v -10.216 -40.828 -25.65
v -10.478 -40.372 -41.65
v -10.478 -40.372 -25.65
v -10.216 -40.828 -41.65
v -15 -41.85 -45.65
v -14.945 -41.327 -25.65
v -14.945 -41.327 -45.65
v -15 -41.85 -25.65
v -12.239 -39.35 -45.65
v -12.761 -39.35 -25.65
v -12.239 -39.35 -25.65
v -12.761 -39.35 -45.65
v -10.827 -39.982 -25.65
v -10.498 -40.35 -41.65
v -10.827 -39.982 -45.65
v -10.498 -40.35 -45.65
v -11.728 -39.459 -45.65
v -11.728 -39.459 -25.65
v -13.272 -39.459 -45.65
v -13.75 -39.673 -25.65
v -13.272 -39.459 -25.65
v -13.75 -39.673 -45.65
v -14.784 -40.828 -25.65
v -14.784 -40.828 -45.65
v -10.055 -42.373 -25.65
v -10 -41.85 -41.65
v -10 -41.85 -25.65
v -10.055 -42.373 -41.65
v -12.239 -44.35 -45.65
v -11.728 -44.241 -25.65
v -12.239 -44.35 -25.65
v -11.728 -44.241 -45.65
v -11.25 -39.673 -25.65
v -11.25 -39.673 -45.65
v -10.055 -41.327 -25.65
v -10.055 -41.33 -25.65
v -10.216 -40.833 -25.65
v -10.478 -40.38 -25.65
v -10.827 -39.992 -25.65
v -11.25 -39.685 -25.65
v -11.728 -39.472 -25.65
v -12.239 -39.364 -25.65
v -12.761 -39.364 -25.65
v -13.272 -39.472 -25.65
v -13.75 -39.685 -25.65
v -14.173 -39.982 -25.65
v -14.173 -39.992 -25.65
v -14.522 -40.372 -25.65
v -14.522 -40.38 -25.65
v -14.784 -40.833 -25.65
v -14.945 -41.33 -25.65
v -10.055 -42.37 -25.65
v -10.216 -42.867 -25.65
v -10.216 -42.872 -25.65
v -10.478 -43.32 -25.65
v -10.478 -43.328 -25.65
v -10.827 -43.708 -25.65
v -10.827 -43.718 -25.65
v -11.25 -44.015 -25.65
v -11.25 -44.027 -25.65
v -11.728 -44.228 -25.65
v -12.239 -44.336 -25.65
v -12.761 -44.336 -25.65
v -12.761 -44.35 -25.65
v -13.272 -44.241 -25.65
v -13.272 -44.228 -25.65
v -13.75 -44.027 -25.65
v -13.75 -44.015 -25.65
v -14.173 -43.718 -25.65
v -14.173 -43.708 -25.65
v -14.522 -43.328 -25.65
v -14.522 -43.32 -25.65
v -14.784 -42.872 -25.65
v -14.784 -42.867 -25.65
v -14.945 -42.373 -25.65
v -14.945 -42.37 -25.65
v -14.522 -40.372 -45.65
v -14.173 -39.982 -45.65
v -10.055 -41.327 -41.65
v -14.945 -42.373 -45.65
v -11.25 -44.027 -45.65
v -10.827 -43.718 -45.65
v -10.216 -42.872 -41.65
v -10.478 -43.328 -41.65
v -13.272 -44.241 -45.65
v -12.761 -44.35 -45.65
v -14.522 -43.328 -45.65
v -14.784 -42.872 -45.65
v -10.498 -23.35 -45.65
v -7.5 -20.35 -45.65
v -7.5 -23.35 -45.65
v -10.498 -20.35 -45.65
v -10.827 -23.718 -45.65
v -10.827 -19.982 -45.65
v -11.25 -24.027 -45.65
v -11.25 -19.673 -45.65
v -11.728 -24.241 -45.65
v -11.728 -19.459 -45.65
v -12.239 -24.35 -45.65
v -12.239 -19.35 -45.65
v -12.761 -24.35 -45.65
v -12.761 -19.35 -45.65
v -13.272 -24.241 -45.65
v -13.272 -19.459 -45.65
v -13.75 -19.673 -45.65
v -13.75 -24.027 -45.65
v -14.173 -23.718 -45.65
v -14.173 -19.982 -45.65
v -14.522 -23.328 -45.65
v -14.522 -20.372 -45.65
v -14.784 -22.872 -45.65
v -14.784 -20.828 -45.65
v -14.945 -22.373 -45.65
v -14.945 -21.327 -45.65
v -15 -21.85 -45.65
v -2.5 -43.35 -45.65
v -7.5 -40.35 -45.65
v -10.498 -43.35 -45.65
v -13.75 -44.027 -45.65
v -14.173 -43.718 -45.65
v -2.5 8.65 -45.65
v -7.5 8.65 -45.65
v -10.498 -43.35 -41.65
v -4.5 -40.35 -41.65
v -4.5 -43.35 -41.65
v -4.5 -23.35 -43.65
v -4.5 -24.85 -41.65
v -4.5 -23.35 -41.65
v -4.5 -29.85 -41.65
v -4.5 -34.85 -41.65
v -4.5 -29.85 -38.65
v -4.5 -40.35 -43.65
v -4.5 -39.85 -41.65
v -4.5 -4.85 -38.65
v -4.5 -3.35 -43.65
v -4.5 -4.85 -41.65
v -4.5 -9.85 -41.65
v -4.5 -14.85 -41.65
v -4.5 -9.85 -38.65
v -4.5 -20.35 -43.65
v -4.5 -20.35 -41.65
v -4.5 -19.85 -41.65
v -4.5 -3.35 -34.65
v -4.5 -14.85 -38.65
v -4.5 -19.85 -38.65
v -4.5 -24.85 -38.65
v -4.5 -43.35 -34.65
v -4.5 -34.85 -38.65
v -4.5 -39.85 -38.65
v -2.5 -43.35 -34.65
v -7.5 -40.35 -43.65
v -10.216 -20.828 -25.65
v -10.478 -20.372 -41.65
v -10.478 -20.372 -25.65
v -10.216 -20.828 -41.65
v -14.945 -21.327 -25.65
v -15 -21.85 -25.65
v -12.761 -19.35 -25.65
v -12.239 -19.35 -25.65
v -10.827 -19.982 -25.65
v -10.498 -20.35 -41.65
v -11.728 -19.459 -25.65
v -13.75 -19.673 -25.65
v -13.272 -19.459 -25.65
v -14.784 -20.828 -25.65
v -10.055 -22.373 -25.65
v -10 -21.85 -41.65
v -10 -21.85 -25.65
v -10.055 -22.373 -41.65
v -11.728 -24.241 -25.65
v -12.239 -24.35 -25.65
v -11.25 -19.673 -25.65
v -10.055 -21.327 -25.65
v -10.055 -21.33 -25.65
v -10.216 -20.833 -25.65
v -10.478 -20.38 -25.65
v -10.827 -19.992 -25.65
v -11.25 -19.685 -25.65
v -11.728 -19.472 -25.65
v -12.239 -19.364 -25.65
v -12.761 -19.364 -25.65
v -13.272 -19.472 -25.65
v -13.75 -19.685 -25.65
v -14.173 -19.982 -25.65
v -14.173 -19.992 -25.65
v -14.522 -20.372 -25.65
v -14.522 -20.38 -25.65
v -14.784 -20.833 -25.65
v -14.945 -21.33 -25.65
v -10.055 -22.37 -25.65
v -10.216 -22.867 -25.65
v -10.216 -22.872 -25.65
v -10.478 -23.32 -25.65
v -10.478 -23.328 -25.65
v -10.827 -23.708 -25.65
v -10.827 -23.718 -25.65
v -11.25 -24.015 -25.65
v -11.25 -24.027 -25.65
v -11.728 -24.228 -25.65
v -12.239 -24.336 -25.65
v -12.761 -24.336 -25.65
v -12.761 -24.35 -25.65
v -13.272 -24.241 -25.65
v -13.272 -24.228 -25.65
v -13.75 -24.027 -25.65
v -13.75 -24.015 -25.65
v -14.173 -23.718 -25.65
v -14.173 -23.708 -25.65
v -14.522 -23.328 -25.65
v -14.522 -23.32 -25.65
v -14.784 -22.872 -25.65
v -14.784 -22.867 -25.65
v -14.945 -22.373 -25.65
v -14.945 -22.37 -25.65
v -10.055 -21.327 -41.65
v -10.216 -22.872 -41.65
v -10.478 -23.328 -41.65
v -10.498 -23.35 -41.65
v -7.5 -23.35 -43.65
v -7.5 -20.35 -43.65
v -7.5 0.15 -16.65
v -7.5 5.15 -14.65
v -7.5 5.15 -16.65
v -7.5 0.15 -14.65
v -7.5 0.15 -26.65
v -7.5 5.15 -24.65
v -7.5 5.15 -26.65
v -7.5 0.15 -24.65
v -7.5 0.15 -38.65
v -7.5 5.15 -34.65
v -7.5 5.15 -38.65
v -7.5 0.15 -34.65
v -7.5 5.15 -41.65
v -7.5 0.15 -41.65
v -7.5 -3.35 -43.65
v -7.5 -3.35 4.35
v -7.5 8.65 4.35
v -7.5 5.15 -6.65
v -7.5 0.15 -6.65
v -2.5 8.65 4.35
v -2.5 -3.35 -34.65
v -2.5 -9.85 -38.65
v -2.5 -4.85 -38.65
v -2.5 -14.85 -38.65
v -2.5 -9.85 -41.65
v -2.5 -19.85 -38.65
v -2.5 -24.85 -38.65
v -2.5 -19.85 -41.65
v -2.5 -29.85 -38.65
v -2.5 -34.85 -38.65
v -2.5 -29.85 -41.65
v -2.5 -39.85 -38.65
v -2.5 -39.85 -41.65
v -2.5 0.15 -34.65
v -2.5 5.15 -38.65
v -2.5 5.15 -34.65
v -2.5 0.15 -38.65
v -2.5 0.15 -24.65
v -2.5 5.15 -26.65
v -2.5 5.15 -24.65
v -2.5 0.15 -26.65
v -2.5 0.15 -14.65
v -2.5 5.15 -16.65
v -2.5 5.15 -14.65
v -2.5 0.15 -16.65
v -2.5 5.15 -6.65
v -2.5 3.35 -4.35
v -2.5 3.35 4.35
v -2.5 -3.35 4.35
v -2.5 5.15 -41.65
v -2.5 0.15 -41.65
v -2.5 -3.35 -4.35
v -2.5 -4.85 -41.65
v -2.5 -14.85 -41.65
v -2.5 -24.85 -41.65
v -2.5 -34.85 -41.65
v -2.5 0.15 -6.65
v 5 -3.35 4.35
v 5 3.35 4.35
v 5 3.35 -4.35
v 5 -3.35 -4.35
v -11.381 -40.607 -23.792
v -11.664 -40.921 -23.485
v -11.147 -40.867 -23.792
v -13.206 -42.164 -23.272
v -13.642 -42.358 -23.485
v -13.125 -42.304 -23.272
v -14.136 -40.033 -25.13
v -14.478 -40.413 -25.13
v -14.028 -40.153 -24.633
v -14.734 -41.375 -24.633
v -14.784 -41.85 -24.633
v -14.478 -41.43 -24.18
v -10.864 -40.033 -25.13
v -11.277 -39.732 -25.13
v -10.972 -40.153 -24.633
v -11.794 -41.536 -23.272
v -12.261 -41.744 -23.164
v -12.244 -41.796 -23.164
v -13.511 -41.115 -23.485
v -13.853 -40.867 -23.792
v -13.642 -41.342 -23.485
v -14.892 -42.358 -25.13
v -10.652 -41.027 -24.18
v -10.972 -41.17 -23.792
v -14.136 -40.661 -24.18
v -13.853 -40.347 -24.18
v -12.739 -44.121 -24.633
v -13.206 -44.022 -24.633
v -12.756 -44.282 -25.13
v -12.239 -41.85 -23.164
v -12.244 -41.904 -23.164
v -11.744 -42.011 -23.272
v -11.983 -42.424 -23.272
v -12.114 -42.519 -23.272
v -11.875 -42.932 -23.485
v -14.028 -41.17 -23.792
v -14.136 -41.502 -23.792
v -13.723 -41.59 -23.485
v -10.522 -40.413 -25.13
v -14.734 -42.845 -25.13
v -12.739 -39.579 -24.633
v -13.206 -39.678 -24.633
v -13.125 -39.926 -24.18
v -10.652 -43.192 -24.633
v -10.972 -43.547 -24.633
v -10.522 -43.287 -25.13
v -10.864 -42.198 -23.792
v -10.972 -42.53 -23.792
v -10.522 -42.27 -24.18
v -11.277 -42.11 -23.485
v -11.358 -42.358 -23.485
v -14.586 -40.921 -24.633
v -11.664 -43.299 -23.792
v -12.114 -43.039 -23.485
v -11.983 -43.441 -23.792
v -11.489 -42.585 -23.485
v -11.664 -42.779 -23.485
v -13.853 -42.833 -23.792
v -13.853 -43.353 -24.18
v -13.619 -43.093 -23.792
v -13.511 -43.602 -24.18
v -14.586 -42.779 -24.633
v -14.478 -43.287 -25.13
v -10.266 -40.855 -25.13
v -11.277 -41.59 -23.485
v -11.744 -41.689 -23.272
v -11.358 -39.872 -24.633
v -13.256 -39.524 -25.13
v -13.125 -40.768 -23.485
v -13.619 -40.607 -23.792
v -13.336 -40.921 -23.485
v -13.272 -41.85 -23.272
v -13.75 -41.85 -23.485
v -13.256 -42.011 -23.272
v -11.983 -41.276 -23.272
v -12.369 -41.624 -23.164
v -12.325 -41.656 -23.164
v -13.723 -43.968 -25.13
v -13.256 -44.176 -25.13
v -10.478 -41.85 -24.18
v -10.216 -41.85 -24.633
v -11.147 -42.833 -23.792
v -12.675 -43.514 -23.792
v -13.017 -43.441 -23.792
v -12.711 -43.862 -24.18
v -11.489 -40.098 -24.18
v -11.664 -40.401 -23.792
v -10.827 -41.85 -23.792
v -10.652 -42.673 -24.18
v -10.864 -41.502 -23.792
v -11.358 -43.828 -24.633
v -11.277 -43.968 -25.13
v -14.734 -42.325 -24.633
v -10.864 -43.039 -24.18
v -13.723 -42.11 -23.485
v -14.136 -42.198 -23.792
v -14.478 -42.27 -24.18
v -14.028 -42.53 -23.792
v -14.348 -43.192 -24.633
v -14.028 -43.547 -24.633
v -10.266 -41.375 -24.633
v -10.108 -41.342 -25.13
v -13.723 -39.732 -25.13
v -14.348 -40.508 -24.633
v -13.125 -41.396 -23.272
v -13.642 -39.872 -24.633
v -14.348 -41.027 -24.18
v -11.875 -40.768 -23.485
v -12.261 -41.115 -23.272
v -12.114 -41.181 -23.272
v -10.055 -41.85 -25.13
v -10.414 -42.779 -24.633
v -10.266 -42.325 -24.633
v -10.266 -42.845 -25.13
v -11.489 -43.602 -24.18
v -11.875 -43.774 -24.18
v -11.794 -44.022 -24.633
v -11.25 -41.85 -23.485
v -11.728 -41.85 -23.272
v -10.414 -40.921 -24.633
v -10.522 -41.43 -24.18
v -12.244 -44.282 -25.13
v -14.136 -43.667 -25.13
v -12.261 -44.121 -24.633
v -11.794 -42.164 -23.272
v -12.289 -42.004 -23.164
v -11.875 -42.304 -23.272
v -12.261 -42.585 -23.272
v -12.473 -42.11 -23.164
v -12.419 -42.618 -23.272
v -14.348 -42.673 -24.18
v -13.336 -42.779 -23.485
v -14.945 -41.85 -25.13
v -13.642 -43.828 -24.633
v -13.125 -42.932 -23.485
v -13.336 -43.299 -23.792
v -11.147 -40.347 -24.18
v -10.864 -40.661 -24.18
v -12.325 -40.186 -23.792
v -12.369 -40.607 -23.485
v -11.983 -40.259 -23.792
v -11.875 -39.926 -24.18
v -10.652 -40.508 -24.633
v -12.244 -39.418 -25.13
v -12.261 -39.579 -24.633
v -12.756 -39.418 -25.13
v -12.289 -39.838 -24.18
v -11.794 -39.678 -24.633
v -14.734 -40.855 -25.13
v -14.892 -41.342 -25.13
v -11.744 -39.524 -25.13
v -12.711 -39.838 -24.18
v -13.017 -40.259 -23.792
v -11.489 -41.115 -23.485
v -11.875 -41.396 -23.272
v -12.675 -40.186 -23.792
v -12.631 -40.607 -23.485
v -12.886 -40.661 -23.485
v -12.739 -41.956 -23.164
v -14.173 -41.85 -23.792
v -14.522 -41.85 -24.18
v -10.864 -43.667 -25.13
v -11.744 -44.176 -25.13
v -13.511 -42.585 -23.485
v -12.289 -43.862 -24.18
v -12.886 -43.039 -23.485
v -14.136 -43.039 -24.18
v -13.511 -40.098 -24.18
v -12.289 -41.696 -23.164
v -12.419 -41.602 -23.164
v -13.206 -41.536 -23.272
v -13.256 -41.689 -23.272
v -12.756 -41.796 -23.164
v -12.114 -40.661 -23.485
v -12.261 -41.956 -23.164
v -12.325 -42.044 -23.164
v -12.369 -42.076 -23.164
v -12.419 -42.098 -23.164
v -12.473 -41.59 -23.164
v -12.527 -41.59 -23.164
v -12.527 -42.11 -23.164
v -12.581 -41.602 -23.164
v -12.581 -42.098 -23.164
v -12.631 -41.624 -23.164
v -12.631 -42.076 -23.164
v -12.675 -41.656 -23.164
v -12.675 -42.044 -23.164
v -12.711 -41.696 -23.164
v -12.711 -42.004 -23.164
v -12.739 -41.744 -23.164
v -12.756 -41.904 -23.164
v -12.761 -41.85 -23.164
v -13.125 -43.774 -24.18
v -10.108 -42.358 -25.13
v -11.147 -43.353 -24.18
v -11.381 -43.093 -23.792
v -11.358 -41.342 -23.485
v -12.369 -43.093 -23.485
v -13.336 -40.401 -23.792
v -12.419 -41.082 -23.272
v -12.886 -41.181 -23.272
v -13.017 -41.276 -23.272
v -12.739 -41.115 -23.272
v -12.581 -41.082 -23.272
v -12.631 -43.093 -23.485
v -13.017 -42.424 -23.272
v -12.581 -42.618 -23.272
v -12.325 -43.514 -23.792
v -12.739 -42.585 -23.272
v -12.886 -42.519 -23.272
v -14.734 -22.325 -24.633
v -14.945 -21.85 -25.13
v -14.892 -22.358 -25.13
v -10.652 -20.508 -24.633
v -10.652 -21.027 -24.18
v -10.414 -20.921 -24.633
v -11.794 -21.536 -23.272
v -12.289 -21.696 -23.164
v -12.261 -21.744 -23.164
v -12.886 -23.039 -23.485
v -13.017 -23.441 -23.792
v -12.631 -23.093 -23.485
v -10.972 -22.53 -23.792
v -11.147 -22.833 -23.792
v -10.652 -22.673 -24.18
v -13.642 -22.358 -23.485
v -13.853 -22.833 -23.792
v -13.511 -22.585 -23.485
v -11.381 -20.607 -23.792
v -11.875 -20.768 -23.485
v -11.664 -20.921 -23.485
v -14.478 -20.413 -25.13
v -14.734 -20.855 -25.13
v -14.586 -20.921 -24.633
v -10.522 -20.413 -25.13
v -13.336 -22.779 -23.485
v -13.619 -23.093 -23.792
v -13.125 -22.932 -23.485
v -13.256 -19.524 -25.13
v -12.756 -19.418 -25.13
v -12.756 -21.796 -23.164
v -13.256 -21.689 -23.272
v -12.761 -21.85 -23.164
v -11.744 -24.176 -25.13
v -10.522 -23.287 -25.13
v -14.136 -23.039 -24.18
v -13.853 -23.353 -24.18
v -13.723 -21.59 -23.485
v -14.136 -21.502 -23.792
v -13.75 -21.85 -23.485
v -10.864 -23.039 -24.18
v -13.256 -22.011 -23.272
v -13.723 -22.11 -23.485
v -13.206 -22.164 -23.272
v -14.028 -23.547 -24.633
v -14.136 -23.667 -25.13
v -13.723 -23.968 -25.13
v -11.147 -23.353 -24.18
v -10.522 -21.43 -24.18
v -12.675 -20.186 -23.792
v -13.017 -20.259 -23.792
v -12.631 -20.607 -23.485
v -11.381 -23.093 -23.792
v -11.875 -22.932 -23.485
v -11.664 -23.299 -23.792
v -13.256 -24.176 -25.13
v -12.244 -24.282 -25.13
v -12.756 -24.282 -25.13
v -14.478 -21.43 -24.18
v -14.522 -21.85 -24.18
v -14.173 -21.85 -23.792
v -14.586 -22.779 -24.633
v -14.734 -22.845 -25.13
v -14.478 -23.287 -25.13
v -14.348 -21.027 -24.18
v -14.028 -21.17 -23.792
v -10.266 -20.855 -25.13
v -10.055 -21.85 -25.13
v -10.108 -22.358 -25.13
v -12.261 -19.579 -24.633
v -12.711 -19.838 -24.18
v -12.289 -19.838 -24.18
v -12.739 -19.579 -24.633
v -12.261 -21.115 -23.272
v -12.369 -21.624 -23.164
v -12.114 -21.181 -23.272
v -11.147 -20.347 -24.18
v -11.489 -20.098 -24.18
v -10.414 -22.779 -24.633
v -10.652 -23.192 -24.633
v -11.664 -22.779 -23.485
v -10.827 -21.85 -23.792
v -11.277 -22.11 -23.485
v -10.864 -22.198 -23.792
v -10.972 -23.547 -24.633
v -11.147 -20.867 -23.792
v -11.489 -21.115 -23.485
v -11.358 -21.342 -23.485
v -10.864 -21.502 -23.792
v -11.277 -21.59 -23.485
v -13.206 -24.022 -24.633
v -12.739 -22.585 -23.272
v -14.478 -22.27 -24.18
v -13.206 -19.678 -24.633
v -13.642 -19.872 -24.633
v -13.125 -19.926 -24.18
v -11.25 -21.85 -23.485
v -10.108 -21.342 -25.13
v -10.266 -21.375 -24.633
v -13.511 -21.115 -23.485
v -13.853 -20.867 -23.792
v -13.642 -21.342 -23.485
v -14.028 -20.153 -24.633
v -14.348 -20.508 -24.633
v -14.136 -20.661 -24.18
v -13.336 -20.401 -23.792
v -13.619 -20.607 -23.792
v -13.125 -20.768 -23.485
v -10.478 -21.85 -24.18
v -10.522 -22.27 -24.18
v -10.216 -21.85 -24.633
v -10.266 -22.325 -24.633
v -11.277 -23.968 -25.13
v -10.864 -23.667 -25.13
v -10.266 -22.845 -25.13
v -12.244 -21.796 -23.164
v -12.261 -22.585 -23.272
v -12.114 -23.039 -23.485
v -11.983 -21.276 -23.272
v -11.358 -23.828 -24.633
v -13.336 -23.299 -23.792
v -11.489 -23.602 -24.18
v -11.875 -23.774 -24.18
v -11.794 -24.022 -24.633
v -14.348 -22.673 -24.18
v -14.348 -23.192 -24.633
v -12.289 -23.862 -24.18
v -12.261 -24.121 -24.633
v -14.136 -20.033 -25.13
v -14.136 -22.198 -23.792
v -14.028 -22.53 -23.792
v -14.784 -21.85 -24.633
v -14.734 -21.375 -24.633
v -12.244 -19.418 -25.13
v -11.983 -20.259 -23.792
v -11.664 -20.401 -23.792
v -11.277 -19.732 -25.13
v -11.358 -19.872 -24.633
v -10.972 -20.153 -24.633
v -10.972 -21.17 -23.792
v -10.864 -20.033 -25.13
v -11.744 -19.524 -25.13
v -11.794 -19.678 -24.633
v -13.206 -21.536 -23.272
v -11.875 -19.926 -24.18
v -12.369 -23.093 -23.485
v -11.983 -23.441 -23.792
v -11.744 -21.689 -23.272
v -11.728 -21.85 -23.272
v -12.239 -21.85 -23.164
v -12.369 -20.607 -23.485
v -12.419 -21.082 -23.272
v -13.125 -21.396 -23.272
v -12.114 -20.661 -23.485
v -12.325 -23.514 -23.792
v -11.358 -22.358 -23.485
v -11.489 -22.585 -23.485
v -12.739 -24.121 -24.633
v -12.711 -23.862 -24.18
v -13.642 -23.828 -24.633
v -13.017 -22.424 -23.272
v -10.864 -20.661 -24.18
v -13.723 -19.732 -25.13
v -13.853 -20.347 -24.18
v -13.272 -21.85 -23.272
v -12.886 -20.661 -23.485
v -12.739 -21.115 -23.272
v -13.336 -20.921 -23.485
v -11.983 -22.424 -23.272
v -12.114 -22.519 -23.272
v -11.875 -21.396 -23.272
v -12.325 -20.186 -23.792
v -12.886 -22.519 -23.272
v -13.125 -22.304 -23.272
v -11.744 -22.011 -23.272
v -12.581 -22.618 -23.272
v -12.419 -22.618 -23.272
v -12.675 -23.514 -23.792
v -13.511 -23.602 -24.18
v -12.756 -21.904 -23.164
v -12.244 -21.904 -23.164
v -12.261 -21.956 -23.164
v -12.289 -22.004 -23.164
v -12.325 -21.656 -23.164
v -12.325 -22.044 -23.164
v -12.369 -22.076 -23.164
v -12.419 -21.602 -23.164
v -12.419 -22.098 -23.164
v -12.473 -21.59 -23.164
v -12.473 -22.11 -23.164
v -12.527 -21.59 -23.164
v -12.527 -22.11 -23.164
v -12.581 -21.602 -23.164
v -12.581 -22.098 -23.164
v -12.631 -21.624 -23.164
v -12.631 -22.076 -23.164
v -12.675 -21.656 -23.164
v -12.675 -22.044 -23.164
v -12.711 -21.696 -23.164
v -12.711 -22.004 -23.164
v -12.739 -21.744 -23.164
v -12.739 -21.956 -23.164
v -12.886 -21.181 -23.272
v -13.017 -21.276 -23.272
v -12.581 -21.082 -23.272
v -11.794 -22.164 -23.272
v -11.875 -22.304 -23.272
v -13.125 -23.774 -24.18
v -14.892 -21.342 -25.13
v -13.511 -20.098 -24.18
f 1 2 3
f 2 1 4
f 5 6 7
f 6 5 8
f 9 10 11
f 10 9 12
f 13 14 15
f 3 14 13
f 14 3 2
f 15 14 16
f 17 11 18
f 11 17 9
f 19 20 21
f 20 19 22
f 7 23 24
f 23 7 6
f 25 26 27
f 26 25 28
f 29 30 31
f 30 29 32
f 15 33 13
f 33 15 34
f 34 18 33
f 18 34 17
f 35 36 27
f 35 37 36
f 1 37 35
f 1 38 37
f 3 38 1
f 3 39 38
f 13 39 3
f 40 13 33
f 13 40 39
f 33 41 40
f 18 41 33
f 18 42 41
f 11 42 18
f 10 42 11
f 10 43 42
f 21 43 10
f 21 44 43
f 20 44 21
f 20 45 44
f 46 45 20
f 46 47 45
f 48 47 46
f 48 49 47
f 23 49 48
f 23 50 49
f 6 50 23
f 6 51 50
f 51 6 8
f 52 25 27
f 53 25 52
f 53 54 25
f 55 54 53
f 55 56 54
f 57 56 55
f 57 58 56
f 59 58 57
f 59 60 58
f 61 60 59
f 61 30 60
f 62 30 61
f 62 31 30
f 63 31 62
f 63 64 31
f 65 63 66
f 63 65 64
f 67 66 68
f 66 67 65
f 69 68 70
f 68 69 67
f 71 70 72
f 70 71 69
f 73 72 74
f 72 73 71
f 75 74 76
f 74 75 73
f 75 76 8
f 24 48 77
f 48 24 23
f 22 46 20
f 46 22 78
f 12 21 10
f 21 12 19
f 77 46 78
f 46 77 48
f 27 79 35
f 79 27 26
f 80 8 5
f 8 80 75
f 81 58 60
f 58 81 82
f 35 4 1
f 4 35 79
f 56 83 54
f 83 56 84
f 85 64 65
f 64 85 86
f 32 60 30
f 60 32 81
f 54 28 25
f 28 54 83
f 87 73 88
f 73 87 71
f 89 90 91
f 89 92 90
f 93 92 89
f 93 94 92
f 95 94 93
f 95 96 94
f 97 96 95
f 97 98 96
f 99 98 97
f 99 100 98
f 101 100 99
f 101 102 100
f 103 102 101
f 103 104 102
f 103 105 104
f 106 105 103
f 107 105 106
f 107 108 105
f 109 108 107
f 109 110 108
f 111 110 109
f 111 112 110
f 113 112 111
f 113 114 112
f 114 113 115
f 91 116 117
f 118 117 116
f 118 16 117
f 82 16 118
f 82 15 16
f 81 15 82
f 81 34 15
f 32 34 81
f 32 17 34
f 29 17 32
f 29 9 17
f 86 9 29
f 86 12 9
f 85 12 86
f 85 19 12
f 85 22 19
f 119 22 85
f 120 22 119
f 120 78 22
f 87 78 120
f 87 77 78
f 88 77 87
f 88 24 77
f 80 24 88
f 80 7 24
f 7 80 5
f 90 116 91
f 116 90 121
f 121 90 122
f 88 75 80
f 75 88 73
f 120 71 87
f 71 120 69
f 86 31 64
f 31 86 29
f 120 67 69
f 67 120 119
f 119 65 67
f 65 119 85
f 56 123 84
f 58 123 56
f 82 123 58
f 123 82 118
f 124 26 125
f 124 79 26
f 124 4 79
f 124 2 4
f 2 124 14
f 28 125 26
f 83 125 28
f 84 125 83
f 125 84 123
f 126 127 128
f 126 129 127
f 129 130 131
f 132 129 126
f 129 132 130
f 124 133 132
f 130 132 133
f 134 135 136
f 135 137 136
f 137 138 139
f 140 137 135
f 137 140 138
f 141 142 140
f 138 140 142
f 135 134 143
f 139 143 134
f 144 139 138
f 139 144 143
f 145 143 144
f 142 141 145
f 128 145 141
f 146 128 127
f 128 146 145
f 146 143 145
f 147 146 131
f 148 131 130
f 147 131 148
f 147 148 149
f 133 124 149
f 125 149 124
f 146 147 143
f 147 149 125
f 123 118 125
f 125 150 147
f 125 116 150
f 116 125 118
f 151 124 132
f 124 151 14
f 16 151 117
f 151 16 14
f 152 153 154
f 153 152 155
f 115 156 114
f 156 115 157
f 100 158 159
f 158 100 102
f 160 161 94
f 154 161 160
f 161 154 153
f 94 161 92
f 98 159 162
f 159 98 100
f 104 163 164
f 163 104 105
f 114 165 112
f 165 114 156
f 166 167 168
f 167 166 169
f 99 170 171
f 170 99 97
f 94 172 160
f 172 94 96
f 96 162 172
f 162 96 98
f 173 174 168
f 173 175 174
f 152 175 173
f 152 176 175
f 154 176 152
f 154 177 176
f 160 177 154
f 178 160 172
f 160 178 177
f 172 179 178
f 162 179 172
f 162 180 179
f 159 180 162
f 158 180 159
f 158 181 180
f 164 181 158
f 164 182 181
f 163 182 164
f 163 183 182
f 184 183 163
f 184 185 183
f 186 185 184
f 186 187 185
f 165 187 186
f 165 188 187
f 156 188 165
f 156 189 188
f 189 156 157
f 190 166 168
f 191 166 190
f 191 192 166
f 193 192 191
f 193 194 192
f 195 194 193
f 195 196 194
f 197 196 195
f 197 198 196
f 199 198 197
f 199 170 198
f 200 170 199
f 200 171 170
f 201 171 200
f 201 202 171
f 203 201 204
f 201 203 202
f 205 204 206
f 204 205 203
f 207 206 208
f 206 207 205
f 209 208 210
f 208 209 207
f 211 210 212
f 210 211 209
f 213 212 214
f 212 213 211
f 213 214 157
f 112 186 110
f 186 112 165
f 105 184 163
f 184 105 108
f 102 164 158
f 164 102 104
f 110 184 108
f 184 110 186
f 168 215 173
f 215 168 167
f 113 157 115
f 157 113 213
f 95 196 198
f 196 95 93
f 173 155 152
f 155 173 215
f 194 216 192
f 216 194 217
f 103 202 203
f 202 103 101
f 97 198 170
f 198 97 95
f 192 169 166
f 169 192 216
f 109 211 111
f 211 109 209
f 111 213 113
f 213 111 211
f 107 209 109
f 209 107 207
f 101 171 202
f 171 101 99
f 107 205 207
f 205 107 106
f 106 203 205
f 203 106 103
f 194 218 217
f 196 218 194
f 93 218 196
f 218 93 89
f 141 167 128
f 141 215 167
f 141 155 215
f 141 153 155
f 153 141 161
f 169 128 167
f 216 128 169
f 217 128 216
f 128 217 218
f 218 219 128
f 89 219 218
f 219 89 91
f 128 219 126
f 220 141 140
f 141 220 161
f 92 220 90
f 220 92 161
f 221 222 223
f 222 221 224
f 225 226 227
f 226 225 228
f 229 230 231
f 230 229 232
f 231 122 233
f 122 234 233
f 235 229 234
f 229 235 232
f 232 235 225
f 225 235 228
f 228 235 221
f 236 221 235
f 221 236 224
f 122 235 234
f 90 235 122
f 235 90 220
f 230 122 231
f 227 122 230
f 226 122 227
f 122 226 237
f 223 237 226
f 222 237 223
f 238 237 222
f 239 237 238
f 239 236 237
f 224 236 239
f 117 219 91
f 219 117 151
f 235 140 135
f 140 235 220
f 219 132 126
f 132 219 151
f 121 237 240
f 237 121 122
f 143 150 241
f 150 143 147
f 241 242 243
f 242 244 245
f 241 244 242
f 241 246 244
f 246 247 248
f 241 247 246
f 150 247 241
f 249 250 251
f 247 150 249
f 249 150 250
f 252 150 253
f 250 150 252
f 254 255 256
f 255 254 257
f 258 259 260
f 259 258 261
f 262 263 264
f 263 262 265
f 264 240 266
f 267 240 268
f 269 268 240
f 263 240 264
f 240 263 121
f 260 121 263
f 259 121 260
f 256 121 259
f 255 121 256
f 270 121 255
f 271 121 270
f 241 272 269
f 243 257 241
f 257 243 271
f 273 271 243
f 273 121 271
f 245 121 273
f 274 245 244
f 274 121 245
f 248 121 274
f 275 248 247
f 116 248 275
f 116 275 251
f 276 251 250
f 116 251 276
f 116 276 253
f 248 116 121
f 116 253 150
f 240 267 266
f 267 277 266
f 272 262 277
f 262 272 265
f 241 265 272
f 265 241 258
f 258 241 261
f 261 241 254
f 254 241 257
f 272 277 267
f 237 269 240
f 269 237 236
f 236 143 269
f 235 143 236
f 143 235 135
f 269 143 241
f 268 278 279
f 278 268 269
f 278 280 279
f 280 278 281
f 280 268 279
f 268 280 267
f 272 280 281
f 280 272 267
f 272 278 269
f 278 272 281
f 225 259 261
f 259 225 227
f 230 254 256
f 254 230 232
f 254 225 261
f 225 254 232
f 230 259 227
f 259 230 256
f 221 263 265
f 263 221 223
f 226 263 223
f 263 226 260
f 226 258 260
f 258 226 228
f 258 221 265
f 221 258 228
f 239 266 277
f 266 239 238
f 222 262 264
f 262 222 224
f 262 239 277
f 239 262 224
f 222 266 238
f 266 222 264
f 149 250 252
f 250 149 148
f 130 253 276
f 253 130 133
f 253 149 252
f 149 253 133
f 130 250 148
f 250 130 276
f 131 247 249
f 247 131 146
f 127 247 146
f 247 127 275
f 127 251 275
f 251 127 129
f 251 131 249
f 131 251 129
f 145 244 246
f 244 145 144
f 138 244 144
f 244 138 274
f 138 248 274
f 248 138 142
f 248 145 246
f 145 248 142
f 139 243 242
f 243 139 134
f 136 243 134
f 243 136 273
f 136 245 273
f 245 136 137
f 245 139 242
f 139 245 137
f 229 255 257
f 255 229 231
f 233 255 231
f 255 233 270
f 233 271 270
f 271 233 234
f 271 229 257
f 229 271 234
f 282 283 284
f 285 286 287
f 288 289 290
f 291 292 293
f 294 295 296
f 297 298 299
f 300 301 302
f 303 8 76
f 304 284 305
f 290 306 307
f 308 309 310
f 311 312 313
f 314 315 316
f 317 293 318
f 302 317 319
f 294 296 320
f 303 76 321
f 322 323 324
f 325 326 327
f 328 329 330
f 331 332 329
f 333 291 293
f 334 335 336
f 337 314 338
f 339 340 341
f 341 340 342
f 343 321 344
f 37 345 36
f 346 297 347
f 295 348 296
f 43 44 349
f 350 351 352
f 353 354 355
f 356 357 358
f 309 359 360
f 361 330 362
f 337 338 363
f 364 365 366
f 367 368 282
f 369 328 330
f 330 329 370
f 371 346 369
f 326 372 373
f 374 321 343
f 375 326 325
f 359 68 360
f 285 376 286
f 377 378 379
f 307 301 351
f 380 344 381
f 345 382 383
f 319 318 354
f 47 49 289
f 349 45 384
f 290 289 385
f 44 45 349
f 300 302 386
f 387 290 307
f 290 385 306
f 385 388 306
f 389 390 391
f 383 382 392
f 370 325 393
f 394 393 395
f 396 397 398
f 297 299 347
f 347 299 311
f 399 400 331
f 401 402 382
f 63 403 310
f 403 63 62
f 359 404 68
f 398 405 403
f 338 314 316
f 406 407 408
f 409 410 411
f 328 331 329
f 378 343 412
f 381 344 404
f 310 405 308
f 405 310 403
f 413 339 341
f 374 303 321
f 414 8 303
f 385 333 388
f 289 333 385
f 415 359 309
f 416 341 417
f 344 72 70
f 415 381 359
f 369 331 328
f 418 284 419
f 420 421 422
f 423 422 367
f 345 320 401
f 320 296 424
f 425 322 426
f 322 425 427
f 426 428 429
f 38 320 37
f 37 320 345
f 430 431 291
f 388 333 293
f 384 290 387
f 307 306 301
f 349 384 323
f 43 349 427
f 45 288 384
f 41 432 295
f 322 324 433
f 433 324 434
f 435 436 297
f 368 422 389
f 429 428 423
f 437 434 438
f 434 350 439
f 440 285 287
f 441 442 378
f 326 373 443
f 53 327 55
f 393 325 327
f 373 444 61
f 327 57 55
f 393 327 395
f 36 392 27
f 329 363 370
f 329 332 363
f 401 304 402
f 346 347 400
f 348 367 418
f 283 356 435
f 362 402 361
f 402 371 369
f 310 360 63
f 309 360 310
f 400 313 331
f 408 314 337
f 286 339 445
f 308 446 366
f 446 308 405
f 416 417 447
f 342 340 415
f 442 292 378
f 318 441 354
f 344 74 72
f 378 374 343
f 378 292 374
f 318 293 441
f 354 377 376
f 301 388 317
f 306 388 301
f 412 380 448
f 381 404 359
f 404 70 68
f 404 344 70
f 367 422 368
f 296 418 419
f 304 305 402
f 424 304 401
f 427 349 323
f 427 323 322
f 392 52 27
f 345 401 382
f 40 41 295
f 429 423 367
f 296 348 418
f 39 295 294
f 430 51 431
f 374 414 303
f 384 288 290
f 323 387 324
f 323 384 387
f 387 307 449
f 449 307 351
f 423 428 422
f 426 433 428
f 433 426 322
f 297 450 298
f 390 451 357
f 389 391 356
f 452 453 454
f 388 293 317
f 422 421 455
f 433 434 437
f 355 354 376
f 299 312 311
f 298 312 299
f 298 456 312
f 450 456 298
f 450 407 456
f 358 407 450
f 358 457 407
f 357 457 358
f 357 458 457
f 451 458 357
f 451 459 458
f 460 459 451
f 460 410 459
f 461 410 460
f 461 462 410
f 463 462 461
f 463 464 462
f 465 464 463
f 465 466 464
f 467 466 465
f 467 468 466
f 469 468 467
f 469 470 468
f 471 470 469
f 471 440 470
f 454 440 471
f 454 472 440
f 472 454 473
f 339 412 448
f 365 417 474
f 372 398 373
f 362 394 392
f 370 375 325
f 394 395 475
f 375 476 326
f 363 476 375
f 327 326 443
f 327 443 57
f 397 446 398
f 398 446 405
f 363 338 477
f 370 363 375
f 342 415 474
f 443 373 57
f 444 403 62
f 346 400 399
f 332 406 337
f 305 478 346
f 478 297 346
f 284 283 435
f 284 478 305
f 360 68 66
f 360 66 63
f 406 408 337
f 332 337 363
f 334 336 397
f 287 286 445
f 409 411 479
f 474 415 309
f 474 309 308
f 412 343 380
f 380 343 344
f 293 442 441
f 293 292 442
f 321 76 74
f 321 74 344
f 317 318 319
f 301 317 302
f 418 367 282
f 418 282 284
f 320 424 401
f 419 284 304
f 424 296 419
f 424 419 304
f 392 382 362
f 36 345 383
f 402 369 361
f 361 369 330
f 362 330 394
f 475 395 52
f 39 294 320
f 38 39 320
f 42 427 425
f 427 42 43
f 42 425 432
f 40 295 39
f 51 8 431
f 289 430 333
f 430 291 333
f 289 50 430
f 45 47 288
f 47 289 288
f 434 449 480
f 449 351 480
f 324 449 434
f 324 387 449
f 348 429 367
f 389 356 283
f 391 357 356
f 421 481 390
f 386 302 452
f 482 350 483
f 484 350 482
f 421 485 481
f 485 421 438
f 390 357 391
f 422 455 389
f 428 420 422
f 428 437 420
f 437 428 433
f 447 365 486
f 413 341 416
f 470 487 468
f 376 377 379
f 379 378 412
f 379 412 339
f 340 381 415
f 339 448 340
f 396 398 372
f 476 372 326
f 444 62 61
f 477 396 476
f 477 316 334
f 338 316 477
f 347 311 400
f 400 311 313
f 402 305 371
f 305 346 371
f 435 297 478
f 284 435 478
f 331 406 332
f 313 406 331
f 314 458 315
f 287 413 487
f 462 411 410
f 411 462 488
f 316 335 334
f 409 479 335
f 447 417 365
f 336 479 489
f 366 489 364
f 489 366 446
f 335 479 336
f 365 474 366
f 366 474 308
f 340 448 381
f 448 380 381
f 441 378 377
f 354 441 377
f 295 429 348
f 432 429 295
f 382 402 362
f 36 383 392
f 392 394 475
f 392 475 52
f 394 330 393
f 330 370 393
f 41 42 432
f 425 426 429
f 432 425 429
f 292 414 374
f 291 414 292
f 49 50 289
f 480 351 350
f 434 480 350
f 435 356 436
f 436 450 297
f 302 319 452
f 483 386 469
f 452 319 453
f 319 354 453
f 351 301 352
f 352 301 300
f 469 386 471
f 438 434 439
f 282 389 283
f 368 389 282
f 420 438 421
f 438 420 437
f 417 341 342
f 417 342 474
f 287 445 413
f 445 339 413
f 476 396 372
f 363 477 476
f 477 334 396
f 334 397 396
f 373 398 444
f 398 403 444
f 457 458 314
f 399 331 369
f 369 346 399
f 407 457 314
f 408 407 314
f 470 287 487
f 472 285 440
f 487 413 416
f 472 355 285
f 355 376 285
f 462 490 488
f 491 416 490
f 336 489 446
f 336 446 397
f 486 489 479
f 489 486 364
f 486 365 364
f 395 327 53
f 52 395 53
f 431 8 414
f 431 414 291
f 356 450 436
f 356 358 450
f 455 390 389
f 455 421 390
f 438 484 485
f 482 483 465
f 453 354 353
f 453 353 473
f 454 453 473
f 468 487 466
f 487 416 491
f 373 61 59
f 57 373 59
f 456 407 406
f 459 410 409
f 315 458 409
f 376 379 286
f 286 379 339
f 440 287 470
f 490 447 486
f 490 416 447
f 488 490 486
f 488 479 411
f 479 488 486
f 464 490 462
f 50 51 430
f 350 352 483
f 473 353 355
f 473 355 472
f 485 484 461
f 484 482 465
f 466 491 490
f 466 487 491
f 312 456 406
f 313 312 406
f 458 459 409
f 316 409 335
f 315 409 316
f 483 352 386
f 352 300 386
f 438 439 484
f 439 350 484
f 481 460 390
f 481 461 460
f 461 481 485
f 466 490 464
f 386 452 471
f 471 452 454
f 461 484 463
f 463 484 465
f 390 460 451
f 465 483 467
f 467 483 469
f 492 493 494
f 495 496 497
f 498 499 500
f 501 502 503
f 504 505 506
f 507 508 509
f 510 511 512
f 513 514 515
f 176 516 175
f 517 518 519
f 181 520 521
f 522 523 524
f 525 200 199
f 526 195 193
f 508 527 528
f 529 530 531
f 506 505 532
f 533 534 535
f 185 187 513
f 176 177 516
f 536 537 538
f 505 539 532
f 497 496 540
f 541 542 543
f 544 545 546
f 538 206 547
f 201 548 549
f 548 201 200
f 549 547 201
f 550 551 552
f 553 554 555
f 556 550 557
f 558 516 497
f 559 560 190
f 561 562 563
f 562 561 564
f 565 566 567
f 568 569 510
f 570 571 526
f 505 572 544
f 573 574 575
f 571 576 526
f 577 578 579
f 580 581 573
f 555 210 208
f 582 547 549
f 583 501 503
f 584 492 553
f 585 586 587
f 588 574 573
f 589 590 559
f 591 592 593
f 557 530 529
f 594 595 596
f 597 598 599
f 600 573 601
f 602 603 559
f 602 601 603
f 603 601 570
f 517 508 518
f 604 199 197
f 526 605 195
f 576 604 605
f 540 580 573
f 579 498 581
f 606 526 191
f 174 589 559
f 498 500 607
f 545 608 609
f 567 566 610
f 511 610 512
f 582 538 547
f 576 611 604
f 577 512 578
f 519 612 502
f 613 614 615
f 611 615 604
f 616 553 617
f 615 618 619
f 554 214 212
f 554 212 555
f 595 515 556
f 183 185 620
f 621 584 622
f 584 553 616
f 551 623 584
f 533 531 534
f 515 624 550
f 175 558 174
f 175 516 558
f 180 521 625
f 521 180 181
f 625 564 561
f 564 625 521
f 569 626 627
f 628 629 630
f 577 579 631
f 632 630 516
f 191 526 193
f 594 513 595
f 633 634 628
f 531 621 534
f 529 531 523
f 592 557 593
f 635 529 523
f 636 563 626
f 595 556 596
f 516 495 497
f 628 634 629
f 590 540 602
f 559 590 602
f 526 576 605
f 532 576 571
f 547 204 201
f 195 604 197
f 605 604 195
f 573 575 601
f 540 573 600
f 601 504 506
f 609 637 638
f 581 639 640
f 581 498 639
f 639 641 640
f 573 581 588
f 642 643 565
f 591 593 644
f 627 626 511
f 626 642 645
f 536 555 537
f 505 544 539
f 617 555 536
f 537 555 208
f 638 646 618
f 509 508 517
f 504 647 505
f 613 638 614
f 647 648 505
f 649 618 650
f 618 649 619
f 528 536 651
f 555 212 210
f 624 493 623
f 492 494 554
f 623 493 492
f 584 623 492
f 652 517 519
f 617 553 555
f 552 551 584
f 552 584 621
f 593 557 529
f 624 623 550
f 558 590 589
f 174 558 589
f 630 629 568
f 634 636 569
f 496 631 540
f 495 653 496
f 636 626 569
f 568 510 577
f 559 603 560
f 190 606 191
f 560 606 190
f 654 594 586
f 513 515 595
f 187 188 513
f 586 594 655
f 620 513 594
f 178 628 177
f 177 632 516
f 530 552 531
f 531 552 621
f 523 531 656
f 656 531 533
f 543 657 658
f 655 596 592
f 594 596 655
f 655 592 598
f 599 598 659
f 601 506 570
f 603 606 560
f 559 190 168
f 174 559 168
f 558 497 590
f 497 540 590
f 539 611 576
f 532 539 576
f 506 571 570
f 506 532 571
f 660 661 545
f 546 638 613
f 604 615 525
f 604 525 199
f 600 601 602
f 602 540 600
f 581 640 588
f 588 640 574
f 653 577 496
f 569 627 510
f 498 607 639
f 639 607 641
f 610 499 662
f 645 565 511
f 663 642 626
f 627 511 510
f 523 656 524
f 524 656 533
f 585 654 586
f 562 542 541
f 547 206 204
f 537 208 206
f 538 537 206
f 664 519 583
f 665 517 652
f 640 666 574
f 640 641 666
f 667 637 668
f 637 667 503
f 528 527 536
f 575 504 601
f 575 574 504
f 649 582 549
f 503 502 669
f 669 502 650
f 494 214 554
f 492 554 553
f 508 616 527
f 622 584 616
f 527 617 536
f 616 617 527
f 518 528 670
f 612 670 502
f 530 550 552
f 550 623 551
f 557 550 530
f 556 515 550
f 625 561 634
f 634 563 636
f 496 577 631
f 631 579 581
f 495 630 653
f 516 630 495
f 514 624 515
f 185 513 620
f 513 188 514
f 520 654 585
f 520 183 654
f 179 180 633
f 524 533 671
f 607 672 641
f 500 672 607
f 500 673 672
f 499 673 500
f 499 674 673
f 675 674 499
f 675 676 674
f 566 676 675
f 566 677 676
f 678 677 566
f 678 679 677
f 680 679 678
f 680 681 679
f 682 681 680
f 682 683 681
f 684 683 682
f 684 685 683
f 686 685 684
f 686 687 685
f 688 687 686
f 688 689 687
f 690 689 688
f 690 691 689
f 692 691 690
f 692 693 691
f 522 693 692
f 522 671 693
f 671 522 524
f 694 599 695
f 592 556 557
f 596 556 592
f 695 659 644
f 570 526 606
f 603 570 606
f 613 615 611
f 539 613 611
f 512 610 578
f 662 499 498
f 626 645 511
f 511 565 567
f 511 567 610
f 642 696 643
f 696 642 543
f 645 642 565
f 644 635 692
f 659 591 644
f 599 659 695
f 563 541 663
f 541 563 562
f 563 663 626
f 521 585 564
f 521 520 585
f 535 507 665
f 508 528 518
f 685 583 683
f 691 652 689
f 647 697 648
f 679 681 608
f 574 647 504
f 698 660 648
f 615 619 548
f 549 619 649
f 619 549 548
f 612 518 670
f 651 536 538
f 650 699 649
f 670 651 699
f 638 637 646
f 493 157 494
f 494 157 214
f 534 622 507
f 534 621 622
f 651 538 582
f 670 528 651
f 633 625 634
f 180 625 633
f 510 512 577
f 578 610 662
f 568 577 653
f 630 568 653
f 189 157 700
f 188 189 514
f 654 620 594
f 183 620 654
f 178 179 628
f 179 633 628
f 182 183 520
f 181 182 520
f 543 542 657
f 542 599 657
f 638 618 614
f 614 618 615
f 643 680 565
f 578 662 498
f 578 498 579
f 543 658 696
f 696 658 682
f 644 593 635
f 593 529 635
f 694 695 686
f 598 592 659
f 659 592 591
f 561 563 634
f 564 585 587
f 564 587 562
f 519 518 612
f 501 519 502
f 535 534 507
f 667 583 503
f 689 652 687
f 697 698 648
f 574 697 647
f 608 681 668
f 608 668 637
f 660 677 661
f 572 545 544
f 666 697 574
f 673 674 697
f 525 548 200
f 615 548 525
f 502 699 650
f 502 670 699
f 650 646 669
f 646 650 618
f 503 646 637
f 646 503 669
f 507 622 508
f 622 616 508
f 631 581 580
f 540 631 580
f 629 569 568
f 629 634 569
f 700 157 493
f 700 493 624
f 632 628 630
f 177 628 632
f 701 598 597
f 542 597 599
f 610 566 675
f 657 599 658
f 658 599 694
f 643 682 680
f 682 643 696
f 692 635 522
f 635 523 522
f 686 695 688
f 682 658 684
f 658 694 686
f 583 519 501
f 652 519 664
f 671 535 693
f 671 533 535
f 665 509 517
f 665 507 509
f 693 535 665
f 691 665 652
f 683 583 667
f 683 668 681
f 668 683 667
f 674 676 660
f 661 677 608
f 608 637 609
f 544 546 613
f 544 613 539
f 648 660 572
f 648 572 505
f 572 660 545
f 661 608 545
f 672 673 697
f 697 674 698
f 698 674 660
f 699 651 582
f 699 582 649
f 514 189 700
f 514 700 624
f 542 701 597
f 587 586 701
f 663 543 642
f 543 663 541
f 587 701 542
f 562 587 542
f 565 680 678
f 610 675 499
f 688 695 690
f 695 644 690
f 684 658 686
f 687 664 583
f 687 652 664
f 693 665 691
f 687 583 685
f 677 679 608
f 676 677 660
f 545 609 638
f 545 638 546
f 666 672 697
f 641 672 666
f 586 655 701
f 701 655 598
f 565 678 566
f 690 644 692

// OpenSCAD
include <../../lib/relativity.scad/relativity.scad> // https://github.com/davidson16807/relativity.scad

length = 30;
depth = 15;
height = 50;
thickness = 2;
$fn = 30;

module pillar() {
  box([8, 3, 4], anchor=x-y-z)
    align(-x-z) rod(d=5, h=20, anchor=-z)
      align(z) sphere(d=5);
}


// mirror(x)
differed("hole", "not(hole)")
box([10, 6.7, 8.7])
align(-x-y+z)
box([5, 12, height], anchor=-y+z) {
      translated(z*10, n=[-1:1]) box([6, 5, 8], $class="hole");
  align(x-y) box([4, 2, height], anchor=x-y);
  align(x-z+y) box([thickness, 52, 11], anchor=x+y-z) {
    translated(y*10, n=[-2:2]) box([9, 5, 3], $class="hole");
    align(-x-z) box([3, 52, thickness], anchor=x-z);
    align(-x-y-z) translated(y*20, n=[0,1]) pillar();
  }
}
